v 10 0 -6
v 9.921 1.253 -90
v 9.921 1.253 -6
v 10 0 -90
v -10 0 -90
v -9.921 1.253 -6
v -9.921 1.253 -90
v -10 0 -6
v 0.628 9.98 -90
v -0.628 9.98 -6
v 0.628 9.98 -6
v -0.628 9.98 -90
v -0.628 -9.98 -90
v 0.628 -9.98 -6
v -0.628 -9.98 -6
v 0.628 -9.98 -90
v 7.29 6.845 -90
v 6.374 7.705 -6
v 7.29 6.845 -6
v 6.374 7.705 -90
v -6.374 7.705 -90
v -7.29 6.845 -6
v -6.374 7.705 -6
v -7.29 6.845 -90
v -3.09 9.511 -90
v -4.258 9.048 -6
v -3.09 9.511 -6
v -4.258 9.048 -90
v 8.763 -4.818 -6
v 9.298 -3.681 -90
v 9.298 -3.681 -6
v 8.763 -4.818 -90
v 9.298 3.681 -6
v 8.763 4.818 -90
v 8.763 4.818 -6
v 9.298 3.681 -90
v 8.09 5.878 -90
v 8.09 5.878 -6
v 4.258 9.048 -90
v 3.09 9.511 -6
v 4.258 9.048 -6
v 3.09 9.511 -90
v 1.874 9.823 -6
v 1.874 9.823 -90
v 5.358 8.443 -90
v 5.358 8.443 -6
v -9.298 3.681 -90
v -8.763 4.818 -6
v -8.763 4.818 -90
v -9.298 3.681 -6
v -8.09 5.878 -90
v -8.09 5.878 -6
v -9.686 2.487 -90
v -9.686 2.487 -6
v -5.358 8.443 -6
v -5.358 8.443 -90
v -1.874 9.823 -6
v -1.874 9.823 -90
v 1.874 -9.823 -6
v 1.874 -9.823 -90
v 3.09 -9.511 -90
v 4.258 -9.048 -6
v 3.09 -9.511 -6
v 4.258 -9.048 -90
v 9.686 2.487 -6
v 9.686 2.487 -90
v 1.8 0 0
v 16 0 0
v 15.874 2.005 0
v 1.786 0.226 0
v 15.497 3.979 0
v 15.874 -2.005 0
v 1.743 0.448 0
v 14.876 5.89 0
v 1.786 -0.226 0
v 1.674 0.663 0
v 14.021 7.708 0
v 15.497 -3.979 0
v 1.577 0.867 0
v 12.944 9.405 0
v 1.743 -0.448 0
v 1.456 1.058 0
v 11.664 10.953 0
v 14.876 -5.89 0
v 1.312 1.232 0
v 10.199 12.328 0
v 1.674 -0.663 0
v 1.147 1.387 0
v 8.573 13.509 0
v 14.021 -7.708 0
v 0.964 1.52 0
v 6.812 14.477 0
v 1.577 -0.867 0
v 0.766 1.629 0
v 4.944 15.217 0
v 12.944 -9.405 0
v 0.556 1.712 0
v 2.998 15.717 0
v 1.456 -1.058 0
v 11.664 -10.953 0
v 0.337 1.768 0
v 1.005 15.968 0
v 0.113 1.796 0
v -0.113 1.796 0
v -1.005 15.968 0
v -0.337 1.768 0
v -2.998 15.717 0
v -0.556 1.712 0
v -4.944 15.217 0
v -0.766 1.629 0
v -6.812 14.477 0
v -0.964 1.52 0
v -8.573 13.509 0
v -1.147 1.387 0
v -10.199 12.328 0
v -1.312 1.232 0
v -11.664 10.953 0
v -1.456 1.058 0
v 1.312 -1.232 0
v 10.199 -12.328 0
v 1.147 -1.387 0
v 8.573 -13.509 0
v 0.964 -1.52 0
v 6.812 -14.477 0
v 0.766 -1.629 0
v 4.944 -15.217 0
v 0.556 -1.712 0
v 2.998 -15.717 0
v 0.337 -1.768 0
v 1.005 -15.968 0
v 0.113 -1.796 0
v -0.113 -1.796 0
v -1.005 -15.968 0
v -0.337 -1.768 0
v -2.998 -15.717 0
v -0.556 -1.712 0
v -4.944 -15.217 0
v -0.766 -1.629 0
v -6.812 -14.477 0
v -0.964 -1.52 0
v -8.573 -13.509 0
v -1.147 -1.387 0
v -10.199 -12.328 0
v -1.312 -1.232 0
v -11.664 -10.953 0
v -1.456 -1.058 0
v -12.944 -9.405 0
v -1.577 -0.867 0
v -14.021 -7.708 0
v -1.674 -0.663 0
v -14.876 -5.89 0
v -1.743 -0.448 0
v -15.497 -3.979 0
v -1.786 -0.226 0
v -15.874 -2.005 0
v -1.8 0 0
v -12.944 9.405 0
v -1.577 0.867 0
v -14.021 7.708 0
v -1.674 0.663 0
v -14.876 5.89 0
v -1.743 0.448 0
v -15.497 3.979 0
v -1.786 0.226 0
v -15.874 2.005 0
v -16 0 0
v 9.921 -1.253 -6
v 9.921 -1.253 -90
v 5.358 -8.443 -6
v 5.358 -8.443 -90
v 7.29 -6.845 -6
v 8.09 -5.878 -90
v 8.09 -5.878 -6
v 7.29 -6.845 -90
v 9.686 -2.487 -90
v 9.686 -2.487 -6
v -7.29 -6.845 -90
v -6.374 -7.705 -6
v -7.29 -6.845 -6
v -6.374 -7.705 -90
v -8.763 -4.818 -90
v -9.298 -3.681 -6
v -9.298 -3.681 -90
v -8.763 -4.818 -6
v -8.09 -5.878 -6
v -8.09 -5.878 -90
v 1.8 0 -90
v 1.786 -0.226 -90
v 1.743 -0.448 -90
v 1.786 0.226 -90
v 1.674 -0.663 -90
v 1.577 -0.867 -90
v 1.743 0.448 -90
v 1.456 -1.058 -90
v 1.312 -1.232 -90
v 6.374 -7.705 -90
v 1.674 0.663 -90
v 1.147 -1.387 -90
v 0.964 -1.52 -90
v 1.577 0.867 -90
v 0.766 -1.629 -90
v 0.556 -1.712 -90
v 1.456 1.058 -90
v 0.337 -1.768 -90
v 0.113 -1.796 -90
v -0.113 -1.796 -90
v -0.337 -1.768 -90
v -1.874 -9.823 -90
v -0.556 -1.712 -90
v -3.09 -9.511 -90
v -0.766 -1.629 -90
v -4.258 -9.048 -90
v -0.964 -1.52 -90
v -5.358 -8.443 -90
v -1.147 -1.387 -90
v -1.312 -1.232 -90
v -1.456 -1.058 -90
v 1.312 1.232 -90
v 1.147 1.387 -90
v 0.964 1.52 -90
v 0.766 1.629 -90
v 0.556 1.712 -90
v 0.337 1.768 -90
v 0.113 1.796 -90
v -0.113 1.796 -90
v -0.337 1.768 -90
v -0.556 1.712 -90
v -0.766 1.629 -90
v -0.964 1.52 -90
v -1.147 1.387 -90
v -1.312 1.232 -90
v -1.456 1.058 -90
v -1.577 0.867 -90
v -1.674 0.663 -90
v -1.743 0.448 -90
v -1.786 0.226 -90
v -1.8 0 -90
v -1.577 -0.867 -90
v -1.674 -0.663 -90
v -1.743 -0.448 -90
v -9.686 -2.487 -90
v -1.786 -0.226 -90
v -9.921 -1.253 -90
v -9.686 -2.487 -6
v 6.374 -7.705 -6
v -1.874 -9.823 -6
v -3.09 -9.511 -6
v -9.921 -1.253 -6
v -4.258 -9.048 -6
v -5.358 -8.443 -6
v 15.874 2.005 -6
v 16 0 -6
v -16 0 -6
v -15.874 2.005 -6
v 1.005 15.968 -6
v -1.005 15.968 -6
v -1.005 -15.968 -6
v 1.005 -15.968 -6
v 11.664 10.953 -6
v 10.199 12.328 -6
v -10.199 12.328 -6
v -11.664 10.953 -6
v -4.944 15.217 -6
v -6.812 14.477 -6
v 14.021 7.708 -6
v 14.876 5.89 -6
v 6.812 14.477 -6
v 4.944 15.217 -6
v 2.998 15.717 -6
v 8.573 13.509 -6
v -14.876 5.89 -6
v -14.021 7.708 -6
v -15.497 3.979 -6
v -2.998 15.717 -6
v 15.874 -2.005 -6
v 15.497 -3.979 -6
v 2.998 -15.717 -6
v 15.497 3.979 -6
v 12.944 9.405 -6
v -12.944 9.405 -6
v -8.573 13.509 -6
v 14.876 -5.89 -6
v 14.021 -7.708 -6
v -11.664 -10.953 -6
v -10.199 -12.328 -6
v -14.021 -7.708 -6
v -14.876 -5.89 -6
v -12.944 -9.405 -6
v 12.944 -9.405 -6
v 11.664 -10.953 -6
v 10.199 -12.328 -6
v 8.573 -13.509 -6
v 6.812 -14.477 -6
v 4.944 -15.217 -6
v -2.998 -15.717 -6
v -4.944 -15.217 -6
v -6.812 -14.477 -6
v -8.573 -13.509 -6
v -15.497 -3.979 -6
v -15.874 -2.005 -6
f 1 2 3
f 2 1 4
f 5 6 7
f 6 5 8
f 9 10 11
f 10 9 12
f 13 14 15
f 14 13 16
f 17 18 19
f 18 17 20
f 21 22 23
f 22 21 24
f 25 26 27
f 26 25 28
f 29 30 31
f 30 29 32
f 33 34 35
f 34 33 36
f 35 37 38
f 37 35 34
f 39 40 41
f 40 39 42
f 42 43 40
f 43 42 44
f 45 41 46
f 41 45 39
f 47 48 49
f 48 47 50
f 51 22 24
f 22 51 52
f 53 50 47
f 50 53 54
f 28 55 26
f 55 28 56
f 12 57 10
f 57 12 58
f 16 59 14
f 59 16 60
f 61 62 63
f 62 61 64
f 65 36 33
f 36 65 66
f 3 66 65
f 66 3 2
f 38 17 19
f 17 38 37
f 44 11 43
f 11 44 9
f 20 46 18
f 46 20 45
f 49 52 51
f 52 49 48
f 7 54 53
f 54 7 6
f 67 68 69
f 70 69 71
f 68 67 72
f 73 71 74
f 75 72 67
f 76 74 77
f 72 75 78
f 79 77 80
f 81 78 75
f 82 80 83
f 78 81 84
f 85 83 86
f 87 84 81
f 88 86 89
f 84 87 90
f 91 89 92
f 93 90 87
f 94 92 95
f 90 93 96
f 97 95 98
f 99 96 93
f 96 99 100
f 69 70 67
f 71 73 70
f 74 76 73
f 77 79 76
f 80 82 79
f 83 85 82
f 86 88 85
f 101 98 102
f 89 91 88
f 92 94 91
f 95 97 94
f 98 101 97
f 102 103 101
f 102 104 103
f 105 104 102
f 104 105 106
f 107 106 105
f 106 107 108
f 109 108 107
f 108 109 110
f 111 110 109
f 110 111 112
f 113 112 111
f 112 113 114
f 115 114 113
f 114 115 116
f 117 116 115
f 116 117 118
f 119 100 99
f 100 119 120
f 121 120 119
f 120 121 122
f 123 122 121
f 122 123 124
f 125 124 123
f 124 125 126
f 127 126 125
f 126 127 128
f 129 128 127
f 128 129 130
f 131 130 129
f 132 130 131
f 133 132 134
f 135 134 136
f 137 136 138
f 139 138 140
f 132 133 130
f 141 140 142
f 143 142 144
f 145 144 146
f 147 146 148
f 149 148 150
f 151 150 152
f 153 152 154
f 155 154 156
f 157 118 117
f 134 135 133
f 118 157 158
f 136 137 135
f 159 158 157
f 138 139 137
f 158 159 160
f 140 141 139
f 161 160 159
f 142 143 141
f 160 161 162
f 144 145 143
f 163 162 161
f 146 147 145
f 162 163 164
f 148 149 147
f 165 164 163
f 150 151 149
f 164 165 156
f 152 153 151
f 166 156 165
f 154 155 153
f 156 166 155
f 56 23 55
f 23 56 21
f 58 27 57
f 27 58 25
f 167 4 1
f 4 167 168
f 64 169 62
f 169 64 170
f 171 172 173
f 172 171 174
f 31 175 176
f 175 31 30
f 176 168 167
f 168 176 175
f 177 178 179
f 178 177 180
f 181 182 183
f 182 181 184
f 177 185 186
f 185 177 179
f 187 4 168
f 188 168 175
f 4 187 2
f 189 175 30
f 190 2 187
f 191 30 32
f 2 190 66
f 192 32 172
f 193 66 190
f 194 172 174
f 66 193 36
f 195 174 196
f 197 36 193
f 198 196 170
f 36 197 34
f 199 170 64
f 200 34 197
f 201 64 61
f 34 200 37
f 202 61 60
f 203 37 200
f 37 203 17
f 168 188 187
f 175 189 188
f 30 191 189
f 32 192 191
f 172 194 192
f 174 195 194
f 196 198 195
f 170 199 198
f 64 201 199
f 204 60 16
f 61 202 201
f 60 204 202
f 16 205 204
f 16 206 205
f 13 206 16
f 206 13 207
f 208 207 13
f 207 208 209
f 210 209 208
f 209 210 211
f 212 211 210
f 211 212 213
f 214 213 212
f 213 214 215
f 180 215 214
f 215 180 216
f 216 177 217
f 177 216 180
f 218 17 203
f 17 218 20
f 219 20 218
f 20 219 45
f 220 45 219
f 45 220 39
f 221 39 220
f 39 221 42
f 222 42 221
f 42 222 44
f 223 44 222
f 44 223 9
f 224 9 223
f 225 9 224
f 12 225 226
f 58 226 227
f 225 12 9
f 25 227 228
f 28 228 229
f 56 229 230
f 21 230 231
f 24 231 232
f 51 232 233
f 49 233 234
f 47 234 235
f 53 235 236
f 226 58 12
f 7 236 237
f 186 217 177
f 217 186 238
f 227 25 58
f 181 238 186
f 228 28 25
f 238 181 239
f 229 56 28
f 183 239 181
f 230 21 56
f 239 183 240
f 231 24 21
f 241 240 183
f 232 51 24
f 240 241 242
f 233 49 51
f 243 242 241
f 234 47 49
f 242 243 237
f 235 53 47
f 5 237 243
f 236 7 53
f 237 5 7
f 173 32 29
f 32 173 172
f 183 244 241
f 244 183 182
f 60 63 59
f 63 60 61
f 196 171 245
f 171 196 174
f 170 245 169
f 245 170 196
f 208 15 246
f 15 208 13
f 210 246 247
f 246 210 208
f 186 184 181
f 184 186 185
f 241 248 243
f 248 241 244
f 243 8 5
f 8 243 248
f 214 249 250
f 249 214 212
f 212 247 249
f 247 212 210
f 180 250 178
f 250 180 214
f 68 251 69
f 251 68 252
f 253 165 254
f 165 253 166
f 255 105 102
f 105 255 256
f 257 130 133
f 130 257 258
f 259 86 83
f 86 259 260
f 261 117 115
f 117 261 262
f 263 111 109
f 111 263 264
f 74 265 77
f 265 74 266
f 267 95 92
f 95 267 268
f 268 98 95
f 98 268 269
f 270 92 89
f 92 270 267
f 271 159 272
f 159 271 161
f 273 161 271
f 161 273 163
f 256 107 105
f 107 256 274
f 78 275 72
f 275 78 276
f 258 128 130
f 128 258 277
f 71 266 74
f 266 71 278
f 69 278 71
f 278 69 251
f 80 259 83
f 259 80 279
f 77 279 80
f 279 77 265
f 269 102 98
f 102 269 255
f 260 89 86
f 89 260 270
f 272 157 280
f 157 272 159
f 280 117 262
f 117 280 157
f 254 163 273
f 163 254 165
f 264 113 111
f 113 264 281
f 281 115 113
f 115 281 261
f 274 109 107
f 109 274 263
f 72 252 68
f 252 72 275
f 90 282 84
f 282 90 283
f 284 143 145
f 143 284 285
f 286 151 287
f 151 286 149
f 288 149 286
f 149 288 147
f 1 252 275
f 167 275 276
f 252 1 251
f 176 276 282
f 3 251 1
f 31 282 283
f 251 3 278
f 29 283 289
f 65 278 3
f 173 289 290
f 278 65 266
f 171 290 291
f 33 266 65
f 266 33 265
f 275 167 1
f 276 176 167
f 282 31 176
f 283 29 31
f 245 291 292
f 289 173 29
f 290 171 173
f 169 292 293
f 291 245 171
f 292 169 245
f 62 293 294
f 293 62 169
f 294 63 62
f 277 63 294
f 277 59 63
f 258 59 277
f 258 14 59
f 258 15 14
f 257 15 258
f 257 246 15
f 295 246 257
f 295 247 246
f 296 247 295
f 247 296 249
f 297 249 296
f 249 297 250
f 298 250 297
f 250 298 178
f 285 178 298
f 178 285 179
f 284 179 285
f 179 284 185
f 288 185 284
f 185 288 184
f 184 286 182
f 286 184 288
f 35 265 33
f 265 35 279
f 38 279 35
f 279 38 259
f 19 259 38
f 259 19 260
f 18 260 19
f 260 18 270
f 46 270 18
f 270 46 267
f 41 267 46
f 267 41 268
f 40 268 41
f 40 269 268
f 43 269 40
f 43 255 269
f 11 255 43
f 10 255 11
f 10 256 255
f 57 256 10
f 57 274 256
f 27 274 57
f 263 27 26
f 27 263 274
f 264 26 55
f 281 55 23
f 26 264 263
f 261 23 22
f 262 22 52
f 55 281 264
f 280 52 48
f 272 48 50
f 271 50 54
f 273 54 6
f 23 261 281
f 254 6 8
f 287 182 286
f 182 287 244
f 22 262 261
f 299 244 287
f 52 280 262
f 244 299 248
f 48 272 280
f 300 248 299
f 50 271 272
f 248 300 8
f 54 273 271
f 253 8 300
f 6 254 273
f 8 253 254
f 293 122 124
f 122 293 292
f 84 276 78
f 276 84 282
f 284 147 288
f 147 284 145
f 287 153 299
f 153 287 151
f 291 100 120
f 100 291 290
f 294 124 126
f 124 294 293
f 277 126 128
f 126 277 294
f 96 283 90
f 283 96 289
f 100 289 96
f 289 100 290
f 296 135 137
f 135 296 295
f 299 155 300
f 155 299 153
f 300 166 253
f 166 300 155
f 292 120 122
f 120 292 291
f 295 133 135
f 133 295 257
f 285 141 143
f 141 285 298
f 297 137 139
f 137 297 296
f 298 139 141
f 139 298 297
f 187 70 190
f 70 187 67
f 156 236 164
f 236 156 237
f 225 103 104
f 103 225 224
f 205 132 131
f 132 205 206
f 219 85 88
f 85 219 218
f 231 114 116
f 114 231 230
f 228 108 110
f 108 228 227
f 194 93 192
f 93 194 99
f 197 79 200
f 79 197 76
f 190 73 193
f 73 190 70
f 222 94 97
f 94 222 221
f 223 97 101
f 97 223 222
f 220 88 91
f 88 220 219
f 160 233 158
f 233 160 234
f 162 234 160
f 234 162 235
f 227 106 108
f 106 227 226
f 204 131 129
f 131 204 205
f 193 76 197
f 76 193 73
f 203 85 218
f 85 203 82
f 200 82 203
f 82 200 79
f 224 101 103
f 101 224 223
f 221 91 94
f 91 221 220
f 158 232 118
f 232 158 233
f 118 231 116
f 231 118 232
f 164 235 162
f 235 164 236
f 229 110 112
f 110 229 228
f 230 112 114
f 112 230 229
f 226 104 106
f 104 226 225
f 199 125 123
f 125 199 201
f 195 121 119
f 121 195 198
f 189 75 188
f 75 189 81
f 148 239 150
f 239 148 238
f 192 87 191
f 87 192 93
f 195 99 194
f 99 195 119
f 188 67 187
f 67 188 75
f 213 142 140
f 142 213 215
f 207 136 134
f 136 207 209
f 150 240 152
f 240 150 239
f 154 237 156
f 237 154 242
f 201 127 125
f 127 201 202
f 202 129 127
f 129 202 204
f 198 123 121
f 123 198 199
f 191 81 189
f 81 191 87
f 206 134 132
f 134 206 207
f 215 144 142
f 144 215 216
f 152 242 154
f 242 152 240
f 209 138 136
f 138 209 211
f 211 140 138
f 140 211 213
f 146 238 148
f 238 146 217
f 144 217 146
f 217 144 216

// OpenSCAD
$fn = 50;


difference() {
	union() {
		translate(v = [0, 0, -90.0000000000]) {
			cylinder(h = 90, r = 10.0000000000);
		}
		translate(v = [0, 0, -6.0000000000]) {
			cylinder(h = 6, r = 16.0000000000);
		}
	}
	union() {
		#translate(v = [0, 0, -90]) {
			cylinder(h = 90, r = 1.8000000000);
		}
	}
}
